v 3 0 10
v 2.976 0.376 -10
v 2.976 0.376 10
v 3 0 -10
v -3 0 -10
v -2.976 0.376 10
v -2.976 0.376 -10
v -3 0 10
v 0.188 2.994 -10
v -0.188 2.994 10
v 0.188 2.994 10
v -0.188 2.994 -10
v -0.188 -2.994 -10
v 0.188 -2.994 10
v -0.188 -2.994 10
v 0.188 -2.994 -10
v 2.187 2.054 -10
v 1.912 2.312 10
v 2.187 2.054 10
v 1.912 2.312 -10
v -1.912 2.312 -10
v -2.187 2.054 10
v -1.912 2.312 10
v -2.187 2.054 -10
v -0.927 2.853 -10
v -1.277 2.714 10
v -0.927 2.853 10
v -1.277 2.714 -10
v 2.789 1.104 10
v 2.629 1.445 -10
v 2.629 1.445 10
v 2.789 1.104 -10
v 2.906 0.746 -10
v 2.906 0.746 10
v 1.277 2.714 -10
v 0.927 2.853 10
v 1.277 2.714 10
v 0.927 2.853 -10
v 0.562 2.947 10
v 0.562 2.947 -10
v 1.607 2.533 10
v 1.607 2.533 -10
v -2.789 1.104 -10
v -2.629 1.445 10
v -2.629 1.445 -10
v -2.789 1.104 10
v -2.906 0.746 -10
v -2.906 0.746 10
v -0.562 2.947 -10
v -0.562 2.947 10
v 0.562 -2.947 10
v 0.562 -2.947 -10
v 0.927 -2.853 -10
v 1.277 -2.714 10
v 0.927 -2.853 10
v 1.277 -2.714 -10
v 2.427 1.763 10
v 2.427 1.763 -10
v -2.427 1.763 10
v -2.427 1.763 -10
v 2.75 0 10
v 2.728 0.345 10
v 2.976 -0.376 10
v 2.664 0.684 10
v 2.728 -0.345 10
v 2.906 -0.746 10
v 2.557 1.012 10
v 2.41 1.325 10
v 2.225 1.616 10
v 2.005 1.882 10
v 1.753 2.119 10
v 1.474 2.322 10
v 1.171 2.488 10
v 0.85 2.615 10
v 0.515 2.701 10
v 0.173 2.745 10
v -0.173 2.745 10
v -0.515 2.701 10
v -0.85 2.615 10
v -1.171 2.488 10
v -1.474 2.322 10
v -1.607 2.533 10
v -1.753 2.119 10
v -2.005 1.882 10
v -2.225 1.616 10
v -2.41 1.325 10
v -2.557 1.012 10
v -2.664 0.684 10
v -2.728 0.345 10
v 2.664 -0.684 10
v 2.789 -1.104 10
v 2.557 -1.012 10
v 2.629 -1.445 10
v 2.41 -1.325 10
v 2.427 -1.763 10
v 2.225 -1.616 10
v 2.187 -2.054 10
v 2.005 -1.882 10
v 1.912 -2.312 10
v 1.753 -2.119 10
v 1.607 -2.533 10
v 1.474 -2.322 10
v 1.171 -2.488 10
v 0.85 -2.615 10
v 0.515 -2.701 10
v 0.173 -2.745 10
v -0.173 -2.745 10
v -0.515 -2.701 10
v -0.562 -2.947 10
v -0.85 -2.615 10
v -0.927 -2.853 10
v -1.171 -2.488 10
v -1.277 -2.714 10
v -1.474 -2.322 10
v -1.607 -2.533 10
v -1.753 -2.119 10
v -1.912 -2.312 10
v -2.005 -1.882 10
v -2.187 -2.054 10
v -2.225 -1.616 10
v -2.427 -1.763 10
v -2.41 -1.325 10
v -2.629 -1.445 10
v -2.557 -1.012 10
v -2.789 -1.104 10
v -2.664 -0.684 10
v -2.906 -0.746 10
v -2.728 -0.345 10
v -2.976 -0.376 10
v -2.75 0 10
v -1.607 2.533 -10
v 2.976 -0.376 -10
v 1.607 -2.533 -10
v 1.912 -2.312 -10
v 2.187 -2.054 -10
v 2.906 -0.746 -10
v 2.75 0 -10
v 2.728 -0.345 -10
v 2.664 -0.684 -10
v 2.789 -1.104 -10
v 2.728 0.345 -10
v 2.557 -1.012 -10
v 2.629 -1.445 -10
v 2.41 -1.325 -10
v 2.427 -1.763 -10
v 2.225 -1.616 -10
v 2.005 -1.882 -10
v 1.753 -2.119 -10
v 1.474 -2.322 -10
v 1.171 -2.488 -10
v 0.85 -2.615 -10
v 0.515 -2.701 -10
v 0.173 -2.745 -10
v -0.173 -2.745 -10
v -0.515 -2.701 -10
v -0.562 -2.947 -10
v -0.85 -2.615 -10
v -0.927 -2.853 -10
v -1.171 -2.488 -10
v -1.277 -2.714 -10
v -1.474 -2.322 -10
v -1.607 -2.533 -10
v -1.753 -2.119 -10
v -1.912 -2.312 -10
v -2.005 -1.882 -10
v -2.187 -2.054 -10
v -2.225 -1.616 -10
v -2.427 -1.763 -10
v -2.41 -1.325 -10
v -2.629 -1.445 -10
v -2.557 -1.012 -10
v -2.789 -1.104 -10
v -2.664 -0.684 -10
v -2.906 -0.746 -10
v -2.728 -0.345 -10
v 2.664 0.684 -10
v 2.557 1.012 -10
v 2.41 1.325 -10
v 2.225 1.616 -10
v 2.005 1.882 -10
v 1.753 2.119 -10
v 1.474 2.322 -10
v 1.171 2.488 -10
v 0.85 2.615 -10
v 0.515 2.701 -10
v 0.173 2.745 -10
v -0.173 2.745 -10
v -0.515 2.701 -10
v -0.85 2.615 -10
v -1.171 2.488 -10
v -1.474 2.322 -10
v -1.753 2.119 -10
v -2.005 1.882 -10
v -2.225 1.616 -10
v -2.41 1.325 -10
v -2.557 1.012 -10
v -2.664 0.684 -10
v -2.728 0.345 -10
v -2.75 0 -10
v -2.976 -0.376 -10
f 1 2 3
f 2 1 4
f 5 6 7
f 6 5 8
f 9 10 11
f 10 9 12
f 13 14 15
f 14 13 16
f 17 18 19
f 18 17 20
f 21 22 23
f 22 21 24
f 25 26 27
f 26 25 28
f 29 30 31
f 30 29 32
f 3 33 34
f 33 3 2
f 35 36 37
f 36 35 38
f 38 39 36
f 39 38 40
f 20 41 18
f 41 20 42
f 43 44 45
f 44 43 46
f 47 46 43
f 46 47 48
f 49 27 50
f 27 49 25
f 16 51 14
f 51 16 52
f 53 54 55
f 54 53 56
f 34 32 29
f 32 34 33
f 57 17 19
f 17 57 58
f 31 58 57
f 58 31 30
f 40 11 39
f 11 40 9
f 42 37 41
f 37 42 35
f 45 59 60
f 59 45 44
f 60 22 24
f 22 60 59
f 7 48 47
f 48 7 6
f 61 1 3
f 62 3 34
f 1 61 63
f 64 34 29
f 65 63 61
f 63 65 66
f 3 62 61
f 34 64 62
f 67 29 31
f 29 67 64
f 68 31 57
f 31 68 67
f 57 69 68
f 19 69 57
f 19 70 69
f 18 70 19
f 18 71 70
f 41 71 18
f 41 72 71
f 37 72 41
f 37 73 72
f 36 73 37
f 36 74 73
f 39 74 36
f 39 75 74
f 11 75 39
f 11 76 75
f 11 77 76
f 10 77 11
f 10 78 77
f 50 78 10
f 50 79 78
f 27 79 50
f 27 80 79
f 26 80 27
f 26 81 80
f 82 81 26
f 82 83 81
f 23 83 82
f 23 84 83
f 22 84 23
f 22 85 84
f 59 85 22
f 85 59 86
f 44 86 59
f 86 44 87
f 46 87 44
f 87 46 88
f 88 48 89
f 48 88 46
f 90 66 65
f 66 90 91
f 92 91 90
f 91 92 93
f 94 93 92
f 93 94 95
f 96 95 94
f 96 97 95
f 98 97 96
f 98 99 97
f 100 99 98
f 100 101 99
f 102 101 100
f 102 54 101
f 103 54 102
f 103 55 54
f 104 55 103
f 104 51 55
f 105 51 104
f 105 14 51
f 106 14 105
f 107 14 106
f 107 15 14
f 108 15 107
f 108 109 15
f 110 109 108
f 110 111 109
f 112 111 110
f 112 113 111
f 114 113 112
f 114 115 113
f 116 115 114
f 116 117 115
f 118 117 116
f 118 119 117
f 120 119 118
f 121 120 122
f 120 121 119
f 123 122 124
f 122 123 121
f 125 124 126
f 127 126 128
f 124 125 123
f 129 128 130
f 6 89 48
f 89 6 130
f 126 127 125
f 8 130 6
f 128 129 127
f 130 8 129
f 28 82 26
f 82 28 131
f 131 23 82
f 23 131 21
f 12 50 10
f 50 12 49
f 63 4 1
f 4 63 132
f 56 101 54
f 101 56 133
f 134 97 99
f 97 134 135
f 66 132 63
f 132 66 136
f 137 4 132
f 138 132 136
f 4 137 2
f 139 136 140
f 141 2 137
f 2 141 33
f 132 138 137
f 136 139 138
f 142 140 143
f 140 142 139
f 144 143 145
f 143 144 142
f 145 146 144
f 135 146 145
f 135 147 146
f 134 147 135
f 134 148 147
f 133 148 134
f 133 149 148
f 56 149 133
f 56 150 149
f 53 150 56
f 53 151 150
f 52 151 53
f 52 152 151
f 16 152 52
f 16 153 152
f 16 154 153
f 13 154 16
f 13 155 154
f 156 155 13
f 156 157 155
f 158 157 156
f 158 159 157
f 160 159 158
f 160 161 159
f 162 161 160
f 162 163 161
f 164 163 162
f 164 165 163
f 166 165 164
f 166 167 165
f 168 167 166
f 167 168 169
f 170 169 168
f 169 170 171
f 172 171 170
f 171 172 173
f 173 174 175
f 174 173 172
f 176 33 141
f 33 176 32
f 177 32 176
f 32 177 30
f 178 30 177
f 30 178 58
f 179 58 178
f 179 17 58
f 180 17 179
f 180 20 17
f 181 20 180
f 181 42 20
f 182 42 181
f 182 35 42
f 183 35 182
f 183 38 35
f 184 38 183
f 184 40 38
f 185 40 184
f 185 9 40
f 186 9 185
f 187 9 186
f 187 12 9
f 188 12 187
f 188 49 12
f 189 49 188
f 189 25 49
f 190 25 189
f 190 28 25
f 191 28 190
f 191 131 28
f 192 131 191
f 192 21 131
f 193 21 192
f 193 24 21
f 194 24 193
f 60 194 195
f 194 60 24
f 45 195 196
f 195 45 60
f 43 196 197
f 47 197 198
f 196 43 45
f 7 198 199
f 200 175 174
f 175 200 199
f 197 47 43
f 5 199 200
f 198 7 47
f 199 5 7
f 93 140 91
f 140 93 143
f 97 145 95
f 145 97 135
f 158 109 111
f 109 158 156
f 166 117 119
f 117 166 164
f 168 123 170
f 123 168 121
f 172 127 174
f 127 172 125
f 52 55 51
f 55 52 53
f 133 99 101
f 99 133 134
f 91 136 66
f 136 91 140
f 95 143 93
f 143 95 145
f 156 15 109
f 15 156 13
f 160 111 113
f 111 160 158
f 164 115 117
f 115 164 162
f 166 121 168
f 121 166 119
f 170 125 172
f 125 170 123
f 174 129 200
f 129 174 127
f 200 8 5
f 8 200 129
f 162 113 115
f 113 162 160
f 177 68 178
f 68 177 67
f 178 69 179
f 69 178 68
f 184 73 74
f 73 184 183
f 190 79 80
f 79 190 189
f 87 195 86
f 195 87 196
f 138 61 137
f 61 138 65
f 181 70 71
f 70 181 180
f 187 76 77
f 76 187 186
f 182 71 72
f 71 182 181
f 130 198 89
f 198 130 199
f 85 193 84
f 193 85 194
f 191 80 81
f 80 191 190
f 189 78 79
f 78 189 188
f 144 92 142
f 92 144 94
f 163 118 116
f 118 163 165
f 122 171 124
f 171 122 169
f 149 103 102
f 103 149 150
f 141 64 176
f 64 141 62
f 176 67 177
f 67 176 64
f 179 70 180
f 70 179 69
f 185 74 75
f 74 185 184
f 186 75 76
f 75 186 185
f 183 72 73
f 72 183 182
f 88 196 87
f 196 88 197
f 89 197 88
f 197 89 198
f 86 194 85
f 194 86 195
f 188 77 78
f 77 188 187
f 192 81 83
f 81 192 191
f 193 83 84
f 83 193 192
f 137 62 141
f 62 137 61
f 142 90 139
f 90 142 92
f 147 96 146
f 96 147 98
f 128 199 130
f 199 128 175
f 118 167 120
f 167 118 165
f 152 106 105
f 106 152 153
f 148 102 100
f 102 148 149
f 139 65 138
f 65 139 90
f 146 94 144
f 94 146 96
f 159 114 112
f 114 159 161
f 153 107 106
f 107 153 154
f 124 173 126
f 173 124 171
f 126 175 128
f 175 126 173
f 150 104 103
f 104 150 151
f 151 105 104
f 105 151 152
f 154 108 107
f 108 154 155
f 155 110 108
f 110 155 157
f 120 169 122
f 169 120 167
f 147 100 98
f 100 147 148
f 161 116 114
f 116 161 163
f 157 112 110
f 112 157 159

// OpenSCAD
$fn = 50;


difference() {
	union() {
		translate(v = [0, 0, -10.0000000000]) {
			cylinder(h = 20, r = 3.0000000000);
		}
	}
	union() {
		translate(v = [0, 0, -100.0000000000]) {
			cylinder(h = 200, r = 2.7500000000);
		}
	}
}
